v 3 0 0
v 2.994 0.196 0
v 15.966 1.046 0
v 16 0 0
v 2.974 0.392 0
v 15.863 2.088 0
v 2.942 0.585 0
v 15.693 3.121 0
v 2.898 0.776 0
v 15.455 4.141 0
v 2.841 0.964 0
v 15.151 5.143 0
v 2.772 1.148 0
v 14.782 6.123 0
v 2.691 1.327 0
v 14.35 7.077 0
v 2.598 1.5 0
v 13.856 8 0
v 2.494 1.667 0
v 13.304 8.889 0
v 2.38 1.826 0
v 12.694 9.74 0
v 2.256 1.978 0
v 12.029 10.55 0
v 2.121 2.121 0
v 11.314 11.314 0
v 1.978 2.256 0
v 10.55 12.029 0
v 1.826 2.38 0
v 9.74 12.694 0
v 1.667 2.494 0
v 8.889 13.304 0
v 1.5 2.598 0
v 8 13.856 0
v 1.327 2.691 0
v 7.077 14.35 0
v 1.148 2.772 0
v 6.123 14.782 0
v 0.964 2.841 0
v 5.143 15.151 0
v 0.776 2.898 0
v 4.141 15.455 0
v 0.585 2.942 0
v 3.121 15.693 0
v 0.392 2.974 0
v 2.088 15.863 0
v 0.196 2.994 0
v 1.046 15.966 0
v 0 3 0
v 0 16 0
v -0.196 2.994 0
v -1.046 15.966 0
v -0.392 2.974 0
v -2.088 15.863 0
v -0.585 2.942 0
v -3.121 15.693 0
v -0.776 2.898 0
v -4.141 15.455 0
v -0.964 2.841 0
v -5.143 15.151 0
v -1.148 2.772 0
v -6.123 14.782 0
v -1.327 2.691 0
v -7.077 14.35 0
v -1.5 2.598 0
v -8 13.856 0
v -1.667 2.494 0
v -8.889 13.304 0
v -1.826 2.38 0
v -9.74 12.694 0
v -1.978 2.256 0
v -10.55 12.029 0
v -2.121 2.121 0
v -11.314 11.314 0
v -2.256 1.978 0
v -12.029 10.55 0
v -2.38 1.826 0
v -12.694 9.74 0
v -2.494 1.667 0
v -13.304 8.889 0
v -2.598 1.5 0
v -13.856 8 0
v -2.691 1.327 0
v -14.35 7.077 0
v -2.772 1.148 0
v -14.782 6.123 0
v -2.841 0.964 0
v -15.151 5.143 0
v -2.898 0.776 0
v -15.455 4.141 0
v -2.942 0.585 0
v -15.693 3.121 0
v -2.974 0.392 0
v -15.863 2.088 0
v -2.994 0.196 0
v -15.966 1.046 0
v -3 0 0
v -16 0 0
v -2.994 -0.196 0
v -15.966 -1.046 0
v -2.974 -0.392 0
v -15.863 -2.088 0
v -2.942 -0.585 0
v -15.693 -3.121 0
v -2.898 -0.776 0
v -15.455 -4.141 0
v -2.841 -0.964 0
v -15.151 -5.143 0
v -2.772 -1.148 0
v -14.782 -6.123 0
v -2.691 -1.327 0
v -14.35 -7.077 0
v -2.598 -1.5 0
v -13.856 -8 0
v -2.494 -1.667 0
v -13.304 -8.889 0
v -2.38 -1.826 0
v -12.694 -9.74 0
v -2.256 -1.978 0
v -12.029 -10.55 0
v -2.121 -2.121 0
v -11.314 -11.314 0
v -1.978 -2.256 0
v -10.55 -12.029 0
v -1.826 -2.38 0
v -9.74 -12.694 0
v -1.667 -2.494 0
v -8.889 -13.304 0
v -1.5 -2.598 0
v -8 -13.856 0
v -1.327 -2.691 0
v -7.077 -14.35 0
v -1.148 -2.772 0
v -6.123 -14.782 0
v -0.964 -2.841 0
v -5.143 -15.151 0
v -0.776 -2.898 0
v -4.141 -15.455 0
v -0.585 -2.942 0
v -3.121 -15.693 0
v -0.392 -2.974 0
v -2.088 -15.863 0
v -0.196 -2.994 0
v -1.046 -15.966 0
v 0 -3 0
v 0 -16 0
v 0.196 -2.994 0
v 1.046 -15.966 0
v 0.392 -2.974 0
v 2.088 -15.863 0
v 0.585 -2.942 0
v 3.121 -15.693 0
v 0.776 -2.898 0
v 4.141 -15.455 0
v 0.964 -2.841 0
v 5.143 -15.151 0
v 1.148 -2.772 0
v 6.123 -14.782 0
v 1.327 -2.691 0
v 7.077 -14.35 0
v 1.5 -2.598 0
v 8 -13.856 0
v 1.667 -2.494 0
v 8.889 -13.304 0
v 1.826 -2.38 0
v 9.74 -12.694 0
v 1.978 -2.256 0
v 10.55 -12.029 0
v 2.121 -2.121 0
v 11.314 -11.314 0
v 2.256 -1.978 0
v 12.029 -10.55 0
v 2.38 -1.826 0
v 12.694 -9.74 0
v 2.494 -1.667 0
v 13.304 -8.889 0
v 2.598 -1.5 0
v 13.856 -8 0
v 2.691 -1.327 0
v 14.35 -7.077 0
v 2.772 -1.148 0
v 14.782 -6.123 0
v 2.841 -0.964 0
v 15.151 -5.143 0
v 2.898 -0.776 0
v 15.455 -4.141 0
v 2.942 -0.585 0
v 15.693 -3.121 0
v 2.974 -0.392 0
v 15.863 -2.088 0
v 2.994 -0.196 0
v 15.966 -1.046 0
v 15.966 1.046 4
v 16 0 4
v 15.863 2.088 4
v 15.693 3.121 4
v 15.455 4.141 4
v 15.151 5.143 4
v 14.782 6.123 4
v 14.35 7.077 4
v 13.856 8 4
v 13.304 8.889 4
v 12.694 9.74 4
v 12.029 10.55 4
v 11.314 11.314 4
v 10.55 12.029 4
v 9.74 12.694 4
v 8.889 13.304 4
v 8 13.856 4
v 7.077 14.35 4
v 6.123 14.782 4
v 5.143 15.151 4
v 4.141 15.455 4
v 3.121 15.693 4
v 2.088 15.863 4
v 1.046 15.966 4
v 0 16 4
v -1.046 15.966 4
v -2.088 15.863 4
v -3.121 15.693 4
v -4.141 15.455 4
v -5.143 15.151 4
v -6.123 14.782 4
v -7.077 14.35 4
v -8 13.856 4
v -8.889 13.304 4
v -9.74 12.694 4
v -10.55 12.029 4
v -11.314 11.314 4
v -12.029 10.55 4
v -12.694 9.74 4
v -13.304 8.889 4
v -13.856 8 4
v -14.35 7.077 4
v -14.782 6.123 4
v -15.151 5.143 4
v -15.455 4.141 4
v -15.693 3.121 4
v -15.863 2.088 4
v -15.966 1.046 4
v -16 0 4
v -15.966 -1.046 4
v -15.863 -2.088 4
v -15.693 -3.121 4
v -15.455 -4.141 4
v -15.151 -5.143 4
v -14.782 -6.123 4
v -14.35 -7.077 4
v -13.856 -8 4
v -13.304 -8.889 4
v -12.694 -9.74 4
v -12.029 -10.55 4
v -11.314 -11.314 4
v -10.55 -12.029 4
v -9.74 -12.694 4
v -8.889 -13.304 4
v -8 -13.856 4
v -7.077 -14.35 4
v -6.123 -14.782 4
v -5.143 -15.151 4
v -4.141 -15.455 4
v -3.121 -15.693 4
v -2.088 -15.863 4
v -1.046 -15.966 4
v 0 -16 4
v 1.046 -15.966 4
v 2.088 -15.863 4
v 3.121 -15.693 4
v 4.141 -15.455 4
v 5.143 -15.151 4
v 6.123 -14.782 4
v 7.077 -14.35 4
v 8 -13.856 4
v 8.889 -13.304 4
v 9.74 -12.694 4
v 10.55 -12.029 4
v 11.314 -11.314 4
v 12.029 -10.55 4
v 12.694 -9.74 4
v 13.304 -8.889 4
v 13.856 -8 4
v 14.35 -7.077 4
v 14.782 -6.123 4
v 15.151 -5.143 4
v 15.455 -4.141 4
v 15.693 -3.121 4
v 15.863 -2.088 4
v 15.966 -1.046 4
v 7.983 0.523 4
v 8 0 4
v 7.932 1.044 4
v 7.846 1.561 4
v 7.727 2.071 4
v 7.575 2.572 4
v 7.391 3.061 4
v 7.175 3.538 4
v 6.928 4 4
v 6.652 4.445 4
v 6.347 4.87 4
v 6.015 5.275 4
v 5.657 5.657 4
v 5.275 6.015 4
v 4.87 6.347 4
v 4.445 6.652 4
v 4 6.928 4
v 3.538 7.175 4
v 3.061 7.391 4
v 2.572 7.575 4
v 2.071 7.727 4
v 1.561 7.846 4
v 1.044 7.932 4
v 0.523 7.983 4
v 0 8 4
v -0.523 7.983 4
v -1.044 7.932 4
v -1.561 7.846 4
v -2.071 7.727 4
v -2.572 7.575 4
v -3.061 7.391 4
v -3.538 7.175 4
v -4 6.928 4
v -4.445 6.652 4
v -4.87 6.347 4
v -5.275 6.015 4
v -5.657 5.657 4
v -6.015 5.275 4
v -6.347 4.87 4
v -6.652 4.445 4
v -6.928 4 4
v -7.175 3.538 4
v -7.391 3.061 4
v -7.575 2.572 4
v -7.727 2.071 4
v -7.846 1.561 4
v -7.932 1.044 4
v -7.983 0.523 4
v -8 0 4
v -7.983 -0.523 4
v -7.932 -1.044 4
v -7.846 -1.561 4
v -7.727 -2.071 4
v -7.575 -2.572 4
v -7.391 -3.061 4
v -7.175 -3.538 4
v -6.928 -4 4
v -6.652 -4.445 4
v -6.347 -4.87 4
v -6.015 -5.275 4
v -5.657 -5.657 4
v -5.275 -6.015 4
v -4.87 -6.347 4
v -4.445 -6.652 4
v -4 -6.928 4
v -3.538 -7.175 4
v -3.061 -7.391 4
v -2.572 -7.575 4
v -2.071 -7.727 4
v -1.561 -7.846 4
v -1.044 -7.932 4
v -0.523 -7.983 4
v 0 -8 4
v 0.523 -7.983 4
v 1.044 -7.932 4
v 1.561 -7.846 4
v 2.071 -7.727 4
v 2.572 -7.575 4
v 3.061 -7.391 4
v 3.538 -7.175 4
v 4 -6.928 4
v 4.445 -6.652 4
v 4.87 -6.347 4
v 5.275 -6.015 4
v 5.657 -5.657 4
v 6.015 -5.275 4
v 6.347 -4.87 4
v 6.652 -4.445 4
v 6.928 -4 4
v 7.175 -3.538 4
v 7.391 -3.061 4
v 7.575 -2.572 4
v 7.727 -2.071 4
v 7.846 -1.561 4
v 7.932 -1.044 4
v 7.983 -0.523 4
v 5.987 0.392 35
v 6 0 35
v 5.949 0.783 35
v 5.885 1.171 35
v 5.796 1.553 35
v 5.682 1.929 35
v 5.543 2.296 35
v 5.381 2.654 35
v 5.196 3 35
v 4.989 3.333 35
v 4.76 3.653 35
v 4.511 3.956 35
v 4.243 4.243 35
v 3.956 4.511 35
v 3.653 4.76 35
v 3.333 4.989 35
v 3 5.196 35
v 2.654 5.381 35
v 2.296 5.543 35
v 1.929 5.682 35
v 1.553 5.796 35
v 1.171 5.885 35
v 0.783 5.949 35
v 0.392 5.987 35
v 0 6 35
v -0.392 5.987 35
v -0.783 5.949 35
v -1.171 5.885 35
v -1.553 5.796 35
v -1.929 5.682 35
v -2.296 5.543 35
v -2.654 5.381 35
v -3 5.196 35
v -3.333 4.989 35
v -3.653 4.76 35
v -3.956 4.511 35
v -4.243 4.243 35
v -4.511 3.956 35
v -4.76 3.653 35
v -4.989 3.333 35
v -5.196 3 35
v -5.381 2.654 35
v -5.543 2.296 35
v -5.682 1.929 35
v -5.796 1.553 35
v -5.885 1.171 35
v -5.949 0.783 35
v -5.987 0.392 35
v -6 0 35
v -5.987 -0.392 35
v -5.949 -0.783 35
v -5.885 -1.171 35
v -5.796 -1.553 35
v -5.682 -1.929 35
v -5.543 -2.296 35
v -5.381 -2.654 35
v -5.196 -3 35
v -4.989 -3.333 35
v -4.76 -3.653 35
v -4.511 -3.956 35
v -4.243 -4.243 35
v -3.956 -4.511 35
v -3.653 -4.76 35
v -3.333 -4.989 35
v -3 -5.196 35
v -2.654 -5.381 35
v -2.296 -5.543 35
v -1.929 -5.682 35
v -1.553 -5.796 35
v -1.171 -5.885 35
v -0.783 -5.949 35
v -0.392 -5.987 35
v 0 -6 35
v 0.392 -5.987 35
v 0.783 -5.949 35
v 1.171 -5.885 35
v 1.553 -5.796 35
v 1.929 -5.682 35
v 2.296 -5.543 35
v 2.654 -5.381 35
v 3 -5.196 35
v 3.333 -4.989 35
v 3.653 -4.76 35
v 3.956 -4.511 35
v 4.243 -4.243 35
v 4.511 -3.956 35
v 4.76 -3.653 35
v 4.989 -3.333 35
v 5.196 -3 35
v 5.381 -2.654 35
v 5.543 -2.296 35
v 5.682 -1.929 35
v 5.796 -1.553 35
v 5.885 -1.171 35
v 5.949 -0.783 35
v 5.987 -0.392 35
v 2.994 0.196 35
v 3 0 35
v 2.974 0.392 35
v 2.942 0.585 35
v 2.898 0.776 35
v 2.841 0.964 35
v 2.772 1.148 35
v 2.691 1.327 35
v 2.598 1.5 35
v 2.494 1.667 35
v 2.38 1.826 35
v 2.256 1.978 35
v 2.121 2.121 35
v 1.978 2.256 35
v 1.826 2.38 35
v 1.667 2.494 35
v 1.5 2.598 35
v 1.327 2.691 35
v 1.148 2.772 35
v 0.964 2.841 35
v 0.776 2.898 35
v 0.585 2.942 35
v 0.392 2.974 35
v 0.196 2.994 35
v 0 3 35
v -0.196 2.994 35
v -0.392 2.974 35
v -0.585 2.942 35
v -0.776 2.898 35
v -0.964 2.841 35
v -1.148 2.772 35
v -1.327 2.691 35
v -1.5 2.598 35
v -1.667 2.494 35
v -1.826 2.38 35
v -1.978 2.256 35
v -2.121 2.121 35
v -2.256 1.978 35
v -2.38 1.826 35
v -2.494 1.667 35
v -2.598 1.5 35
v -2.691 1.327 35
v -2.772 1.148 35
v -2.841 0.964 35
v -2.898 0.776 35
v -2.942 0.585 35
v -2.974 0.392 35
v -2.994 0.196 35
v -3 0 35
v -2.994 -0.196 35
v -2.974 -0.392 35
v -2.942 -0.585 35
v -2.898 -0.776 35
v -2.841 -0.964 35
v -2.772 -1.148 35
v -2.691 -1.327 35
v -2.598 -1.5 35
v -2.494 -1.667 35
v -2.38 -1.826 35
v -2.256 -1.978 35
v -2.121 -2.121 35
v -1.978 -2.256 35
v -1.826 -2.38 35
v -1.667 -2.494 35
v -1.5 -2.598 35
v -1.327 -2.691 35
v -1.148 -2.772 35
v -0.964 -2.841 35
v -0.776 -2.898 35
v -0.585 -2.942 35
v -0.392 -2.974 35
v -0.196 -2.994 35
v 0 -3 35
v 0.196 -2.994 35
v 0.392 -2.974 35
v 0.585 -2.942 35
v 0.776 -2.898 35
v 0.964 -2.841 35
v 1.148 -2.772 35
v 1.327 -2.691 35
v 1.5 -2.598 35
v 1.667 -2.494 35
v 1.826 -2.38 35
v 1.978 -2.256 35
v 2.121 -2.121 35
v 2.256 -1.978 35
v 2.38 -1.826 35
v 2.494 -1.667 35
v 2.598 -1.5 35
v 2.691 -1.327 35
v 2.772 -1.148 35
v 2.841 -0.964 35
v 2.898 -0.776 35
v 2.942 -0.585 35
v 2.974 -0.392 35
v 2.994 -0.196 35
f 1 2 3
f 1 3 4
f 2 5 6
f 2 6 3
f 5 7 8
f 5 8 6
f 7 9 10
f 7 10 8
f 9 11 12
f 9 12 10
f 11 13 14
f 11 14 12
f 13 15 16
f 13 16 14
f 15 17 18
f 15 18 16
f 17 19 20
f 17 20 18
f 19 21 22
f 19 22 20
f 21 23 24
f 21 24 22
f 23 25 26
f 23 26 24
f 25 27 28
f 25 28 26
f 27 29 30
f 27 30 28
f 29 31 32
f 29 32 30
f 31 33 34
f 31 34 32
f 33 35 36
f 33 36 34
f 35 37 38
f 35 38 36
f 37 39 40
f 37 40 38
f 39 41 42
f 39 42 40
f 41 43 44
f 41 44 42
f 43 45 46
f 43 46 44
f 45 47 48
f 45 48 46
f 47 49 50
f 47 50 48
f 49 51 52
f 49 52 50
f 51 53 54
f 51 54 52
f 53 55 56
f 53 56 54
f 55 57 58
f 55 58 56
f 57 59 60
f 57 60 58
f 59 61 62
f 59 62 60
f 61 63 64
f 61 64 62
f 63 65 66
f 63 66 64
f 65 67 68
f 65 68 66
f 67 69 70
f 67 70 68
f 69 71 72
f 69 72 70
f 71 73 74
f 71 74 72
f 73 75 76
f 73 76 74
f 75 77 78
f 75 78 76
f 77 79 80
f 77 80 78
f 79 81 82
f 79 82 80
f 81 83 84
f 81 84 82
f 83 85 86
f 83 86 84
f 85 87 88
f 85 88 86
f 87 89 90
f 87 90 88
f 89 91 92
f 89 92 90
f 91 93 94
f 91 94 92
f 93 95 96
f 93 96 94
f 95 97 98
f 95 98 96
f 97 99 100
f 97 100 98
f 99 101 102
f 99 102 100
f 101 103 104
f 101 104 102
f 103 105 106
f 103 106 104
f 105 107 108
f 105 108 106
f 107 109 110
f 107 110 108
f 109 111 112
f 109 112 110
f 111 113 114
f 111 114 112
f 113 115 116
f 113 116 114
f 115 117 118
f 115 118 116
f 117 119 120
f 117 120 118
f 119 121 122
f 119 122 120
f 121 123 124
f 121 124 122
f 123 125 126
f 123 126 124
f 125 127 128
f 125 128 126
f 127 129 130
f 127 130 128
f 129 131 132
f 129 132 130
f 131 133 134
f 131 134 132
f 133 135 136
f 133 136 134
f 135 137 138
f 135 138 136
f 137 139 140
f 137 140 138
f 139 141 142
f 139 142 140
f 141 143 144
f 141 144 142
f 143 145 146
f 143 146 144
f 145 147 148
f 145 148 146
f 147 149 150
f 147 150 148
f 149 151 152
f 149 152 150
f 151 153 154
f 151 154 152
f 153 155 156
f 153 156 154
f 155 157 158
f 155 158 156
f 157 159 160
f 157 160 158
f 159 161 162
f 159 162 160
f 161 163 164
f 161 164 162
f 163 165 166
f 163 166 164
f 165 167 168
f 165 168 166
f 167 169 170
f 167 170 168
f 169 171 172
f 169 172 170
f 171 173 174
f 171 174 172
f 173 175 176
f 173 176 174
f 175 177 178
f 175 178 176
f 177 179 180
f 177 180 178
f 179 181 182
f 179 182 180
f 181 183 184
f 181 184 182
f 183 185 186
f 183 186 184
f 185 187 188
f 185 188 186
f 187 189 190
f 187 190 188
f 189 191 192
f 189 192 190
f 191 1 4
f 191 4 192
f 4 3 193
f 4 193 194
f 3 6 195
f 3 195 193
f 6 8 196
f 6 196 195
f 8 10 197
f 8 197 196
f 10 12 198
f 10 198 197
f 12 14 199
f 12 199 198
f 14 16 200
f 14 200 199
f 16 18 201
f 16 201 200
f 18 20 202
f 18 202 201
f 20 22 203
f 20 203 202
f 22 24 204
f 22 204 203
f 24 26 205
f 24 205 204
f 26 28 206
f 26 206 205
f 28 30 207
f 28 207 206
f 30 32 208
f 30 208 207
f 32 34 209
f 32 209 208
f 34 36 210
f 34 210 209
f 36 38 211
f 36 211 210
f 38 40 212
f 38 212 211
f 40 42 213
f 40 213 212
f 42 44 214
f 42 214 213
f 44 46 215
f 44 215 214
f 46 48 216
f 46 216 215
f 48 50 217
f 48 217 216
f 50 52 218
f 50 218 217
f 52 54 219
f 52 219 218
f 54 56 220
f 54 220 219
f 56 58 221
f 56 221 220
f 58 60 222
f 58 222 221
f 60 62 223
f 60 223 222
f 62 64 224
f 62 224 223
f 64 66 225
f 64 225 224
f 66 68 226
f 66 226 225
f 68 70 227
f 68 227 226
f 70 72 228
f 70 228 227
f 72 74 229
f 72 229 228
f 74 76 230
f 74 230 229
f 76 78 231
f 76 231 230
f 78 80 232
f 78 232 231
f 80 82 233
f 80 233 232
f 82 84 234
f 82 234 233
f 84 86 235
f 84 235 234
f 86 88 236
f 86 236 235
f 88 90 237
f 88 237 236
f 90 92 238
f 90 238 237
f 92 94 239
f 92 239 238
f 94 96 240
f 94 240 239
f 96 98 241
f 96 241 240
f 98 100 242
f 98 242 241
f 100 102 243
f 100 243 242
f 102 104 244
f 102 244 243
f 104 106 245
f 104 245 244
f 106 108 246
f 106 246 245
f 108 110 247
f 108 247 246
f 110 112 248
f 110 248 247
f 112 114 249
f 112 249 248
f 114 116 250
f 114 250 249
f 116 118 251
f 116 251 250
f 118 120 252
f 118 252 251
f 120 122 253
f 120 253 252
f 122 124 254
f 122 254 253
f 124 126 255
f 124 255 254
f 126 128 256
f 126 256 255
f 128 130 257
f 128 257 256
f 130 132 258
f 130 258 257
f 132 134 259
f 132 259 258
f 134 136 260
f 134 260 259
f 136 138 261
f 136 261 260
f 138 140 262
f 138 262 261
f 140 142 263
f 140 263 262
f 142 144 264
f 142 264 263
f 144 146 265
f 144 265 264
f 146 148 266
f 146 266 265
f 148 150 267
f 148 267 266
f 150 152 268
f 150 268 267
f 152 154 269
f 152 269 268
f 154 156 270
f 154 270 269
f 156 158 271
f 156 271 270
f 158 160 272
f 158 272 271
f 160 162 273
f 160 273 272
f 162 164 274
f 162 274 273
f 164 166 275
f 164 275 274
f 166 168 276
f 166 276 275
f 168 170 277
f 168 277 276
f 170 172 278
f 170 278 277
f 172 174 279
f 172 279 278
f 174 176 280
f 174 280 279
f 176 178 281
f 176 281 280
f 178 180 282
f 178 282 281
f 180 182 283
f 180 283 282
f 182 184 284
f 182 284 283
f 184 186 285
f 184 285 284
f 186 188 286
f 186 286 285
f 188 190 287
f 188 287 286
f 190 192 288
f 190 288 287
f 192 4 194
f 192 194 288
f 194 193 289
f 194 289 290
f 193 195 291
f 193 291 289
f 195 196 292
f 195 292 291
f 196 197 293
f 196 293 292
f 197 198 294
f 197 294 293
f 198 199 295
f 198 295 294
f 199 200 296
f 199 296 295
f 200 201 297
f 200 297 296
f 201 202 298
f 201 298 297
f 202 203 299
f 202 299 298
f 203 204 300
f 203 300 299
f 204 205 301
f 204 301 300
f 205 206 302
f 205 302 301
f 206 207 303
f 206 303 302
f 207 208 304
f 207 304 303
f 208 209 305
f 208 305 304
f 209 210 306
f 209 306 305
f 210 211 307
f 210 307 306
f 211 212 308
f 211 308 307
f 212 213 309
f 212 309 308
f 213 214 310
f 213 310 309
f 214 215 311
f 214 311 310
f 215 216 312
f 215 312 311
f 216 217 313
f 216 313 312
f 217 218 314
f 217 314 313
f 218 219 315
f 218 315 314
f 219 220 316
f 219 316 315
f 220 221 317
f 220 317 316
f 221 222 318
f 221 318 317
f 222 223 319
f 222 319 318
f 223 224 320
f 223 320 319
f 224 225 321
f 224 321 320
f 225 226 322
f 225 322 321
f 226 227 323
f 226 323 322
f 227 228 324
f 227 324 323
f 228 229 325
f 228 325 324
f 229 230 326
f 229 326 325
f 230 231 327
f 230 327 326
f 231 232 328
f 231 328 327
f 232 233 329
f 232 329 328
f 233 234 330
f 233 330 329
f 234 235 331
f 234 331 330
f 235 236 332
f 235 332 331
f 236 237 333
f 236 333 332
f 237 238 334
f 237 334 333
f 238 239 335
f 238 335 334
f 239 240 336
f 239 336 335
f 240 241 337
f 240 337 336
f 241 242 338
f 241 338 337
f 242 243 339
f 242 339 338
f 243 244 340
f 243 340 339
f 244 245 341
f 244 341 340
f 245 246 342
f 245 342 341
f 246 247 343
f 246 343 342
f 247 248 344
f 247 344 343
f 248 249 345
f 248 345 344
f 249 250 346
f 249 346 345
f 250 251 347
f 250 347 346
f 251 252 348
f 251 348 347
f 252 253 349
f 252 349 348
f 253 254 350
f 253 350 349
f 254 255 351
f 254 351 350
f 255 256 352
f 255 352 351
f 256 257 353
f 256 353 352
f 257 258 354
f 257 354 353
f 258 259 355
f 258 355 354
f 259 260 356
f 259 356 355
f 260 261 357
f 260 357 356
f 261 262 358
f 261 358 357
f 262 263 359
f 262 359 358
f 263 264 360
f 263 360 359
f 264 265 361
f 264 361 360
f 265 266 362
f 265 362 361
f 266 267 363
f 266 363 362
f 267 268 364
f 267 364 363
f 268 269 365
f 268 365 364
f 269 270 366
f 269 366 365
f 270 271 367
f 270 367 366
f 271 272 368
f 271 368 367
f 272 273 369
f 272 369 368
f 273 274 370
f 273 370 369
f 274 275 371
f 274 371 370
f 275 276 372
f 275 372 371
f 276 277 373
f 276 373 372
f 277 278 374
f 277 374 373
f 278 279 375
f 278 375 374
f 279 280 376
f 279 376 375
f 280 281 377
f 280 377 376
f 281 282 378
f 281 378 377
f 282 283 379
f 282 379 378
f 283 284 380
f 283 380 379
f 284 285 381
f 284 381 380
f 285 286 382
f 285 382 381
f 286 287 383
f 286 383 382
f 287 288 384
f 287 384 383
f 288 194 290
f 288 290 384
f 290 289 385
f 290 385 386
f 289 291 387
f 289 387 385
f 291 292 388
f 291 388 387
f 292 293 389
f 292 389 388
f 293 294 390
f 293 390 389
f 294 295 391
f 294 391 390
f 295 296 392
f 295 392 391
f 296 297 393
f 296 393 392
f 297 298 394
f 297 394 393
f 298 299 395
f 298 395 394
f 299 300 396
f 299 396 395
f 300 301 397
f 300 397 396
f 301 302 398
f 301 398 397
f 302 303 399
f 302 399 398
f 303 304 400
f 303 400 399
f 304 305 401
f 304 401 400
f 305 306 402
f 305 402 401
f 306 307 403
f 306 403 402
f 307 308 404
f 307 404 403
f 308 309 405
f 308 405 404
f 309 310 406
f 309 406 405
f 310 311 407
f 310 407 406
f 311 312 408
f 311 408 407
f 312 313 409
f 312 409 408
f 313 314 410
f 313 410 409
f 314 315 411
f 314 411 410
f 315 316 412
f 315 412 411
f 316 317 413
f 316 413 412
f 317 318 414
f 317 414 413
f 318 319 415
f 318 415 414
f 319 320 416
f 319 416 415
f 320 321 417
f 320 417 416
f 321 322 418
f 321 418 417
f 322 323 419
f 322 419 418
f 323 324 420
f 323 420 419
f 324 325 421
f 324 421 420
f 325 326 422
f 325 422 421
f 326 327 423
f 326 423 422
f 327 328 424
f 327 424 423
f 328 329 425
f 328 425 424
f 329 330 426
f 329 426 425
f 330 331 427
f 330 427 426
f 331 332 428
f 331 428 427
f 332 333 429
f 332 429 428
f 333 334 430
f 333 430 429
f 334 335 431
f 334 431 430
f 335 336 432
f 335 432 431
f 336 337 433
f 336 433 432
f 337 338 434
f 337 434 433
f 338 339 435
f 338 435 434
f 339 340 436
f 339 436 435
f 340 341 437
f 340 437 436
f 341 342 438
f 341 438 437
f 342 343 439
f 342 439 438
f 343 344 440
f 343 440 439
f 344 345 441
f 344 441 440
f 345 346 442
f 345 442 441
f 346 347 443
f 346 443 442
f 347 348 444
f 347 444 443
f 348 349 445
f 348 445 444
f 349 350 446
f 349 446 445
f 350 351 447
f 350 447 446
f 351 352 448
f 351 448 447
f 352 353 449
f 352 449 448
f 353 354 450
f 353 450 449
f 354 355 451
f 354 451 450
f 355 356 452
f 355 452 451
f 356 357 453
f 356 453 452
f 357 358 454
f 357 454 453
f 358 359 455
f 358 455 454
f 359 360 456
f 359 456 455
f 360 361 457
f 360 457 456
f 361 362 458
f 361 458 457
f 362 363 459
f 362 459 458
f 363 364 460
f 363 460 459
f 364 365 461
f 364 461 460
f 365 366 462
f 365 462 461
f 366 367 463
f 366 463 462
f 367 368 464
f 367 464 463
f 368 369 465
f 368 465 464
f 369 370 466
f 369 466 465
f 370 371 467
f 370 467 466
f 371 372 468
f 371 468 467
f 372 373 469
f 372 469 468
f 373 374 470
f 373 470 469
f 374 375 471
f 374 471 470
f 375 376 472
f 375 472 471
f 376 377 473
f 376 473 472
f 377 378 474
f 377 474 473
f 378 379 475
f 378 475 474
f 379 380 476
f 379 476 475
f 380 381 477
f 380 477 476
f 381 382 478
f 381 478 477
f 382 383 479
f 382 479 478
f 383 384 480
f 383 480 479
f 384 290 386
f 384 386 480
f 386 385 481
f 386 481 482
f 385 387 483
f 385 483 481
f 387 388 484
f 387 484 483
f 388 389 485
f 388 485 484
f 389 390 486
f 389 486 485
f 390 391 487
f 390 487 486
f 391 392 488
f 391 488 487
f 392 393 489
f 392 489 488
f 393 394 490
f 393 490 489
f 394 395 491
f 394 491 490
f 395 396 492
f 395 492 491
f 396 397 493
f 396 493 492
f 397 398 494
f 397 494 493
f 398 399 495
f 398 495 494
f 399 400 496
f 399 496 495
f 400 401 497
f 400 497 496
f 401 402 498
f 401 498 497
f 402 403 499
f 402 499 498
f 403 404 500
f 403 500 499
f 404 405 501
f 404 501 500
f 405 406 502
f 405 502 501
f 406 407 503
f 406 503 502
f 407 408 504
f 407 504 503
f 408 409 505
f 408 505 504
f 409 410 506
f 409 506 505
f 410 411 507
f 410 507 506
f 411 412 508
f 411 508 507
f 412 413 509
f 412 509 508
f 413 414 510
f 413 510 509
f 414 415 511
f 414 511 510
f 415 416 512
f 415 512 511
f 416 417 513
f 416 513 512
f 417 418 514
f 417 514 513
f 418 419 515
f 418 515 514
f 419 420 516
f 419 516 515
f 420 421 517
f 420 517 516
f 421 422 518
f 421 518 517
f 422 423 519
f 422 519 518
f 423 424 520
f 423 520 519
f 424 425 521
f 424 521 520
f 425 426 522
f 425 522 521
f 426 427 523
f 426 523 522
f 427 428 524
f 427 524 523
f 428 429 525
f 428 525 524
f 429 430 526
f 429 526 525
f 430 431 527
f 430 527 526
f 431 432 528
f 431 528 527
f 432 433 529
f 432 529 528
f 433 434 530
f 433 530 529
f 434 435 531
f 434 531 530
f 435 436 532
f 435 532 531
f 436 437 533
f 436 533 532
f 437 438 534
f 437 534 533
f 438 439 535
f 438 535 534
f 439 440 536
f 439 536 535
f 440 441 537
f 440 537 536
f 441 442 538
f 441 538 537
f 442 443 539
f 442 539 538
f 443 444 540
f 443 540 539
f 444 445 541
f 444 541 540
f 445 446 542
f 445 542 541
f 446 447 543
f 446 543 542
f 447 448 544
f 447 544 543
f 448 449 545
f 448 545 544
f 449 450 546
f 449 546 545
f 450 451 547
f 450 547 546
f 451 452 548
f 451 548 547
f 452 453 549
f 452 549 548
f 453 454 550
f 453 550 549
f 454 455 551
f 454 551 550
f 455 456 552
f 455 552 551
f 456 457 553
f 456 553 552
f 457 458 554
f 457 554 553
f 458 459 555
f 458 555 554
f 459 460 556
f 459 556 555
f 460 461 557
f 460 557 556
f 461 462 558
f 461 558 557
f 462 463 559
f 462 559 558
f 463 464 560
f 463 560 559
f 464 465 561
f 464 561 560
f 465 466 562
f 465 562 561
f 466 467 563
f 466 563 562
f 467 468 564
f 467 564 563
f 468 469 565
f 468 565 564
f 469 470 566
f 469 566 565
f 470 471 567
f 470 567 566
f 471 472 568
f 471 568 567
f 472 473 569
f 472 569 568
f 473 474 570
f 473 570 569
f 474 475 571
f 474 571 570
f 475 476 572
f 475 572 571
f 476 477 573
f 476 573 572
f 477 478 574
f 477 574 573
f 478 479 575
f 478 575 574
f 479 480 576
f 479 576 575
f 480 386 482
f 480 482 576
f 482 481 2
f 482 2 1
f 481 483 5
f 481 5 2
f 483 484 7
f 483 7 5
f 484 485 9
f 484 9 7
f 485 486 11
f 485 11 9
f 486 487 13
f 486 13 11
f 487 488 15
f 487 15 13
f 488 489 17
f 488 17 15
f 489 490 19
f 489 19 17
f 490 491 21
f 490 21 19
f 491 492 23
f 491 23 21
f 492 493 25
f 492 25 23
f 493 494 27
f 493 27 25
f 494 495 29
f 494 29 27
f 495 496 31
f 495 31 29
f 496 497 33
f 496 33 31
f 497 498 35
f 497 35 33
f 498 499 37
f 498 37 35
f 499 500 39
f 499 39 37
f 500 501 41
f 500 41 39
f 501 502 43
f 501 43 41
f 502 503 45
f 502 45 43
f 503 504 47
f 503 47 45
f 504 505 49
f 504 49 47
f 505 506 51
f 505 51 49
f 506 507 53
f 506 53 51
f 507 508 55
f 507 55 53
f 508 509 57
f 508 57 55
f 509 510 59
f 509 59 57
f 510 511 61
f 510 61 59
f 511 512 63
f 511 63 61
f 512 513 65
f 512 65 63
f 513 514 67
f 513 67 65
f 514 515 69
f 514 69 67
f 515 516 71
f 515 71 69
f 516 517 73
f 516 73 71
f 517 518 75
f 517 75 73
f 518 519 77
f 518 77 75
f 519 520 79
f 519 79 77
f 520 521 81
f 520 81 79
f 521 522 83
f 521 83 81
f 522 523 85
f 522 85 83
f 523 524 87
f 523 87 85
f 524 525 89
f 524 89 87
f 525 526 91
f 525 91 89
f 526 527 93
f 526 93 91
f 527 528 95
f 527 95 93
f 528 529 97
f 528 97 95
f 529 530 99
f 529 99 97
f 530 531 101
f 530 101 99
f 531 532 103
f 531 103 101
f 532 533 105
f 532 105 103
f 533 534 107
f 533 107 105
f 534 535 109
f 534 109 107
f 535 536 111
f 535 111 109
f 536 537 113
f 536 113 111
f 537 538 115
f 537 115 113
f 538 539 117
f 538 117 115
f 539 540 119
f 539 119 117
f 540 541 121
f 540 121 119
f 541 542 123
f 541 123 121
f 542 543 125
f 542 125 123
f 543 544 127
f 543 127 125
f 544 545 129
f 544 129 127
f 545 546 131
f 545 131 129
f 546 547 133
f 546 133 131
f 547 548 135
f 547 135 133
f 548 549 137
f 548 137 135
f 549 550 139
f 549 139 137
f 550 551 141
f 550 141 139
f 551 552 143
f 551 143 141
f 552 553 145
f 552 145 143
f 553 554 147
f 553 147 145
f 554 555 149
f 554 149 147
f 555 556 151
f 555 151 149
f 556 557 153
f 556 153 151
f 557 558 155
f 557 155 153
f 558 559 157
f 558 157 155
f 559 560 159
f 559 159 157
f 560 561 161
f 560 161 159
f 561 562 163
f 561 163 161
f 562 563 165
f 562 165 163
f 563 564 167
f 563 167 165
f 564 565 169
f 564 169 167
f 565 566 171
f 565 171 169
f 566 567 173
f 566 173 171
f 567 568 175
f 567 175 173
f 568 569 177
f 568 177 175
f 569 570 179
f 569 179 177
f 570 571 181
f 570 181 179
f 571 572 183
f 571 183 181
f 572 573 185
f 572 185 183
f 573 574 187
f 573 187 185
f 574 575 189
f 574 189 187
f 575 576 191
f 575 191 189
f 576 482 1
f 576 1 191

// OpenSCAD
// Original MechIntel educational model. CC0-1.0. Units: mm.
// Not a standardized or load-rated component.
$fn=96;
// Section points: [radius, height], mm. Edit to change the profile.
section=[[3, 0], [16, 0], [16, 4], [8, 4], [6, 35], [3, 35]];
rotate_extrude($fn=96) polygon(points=section);
